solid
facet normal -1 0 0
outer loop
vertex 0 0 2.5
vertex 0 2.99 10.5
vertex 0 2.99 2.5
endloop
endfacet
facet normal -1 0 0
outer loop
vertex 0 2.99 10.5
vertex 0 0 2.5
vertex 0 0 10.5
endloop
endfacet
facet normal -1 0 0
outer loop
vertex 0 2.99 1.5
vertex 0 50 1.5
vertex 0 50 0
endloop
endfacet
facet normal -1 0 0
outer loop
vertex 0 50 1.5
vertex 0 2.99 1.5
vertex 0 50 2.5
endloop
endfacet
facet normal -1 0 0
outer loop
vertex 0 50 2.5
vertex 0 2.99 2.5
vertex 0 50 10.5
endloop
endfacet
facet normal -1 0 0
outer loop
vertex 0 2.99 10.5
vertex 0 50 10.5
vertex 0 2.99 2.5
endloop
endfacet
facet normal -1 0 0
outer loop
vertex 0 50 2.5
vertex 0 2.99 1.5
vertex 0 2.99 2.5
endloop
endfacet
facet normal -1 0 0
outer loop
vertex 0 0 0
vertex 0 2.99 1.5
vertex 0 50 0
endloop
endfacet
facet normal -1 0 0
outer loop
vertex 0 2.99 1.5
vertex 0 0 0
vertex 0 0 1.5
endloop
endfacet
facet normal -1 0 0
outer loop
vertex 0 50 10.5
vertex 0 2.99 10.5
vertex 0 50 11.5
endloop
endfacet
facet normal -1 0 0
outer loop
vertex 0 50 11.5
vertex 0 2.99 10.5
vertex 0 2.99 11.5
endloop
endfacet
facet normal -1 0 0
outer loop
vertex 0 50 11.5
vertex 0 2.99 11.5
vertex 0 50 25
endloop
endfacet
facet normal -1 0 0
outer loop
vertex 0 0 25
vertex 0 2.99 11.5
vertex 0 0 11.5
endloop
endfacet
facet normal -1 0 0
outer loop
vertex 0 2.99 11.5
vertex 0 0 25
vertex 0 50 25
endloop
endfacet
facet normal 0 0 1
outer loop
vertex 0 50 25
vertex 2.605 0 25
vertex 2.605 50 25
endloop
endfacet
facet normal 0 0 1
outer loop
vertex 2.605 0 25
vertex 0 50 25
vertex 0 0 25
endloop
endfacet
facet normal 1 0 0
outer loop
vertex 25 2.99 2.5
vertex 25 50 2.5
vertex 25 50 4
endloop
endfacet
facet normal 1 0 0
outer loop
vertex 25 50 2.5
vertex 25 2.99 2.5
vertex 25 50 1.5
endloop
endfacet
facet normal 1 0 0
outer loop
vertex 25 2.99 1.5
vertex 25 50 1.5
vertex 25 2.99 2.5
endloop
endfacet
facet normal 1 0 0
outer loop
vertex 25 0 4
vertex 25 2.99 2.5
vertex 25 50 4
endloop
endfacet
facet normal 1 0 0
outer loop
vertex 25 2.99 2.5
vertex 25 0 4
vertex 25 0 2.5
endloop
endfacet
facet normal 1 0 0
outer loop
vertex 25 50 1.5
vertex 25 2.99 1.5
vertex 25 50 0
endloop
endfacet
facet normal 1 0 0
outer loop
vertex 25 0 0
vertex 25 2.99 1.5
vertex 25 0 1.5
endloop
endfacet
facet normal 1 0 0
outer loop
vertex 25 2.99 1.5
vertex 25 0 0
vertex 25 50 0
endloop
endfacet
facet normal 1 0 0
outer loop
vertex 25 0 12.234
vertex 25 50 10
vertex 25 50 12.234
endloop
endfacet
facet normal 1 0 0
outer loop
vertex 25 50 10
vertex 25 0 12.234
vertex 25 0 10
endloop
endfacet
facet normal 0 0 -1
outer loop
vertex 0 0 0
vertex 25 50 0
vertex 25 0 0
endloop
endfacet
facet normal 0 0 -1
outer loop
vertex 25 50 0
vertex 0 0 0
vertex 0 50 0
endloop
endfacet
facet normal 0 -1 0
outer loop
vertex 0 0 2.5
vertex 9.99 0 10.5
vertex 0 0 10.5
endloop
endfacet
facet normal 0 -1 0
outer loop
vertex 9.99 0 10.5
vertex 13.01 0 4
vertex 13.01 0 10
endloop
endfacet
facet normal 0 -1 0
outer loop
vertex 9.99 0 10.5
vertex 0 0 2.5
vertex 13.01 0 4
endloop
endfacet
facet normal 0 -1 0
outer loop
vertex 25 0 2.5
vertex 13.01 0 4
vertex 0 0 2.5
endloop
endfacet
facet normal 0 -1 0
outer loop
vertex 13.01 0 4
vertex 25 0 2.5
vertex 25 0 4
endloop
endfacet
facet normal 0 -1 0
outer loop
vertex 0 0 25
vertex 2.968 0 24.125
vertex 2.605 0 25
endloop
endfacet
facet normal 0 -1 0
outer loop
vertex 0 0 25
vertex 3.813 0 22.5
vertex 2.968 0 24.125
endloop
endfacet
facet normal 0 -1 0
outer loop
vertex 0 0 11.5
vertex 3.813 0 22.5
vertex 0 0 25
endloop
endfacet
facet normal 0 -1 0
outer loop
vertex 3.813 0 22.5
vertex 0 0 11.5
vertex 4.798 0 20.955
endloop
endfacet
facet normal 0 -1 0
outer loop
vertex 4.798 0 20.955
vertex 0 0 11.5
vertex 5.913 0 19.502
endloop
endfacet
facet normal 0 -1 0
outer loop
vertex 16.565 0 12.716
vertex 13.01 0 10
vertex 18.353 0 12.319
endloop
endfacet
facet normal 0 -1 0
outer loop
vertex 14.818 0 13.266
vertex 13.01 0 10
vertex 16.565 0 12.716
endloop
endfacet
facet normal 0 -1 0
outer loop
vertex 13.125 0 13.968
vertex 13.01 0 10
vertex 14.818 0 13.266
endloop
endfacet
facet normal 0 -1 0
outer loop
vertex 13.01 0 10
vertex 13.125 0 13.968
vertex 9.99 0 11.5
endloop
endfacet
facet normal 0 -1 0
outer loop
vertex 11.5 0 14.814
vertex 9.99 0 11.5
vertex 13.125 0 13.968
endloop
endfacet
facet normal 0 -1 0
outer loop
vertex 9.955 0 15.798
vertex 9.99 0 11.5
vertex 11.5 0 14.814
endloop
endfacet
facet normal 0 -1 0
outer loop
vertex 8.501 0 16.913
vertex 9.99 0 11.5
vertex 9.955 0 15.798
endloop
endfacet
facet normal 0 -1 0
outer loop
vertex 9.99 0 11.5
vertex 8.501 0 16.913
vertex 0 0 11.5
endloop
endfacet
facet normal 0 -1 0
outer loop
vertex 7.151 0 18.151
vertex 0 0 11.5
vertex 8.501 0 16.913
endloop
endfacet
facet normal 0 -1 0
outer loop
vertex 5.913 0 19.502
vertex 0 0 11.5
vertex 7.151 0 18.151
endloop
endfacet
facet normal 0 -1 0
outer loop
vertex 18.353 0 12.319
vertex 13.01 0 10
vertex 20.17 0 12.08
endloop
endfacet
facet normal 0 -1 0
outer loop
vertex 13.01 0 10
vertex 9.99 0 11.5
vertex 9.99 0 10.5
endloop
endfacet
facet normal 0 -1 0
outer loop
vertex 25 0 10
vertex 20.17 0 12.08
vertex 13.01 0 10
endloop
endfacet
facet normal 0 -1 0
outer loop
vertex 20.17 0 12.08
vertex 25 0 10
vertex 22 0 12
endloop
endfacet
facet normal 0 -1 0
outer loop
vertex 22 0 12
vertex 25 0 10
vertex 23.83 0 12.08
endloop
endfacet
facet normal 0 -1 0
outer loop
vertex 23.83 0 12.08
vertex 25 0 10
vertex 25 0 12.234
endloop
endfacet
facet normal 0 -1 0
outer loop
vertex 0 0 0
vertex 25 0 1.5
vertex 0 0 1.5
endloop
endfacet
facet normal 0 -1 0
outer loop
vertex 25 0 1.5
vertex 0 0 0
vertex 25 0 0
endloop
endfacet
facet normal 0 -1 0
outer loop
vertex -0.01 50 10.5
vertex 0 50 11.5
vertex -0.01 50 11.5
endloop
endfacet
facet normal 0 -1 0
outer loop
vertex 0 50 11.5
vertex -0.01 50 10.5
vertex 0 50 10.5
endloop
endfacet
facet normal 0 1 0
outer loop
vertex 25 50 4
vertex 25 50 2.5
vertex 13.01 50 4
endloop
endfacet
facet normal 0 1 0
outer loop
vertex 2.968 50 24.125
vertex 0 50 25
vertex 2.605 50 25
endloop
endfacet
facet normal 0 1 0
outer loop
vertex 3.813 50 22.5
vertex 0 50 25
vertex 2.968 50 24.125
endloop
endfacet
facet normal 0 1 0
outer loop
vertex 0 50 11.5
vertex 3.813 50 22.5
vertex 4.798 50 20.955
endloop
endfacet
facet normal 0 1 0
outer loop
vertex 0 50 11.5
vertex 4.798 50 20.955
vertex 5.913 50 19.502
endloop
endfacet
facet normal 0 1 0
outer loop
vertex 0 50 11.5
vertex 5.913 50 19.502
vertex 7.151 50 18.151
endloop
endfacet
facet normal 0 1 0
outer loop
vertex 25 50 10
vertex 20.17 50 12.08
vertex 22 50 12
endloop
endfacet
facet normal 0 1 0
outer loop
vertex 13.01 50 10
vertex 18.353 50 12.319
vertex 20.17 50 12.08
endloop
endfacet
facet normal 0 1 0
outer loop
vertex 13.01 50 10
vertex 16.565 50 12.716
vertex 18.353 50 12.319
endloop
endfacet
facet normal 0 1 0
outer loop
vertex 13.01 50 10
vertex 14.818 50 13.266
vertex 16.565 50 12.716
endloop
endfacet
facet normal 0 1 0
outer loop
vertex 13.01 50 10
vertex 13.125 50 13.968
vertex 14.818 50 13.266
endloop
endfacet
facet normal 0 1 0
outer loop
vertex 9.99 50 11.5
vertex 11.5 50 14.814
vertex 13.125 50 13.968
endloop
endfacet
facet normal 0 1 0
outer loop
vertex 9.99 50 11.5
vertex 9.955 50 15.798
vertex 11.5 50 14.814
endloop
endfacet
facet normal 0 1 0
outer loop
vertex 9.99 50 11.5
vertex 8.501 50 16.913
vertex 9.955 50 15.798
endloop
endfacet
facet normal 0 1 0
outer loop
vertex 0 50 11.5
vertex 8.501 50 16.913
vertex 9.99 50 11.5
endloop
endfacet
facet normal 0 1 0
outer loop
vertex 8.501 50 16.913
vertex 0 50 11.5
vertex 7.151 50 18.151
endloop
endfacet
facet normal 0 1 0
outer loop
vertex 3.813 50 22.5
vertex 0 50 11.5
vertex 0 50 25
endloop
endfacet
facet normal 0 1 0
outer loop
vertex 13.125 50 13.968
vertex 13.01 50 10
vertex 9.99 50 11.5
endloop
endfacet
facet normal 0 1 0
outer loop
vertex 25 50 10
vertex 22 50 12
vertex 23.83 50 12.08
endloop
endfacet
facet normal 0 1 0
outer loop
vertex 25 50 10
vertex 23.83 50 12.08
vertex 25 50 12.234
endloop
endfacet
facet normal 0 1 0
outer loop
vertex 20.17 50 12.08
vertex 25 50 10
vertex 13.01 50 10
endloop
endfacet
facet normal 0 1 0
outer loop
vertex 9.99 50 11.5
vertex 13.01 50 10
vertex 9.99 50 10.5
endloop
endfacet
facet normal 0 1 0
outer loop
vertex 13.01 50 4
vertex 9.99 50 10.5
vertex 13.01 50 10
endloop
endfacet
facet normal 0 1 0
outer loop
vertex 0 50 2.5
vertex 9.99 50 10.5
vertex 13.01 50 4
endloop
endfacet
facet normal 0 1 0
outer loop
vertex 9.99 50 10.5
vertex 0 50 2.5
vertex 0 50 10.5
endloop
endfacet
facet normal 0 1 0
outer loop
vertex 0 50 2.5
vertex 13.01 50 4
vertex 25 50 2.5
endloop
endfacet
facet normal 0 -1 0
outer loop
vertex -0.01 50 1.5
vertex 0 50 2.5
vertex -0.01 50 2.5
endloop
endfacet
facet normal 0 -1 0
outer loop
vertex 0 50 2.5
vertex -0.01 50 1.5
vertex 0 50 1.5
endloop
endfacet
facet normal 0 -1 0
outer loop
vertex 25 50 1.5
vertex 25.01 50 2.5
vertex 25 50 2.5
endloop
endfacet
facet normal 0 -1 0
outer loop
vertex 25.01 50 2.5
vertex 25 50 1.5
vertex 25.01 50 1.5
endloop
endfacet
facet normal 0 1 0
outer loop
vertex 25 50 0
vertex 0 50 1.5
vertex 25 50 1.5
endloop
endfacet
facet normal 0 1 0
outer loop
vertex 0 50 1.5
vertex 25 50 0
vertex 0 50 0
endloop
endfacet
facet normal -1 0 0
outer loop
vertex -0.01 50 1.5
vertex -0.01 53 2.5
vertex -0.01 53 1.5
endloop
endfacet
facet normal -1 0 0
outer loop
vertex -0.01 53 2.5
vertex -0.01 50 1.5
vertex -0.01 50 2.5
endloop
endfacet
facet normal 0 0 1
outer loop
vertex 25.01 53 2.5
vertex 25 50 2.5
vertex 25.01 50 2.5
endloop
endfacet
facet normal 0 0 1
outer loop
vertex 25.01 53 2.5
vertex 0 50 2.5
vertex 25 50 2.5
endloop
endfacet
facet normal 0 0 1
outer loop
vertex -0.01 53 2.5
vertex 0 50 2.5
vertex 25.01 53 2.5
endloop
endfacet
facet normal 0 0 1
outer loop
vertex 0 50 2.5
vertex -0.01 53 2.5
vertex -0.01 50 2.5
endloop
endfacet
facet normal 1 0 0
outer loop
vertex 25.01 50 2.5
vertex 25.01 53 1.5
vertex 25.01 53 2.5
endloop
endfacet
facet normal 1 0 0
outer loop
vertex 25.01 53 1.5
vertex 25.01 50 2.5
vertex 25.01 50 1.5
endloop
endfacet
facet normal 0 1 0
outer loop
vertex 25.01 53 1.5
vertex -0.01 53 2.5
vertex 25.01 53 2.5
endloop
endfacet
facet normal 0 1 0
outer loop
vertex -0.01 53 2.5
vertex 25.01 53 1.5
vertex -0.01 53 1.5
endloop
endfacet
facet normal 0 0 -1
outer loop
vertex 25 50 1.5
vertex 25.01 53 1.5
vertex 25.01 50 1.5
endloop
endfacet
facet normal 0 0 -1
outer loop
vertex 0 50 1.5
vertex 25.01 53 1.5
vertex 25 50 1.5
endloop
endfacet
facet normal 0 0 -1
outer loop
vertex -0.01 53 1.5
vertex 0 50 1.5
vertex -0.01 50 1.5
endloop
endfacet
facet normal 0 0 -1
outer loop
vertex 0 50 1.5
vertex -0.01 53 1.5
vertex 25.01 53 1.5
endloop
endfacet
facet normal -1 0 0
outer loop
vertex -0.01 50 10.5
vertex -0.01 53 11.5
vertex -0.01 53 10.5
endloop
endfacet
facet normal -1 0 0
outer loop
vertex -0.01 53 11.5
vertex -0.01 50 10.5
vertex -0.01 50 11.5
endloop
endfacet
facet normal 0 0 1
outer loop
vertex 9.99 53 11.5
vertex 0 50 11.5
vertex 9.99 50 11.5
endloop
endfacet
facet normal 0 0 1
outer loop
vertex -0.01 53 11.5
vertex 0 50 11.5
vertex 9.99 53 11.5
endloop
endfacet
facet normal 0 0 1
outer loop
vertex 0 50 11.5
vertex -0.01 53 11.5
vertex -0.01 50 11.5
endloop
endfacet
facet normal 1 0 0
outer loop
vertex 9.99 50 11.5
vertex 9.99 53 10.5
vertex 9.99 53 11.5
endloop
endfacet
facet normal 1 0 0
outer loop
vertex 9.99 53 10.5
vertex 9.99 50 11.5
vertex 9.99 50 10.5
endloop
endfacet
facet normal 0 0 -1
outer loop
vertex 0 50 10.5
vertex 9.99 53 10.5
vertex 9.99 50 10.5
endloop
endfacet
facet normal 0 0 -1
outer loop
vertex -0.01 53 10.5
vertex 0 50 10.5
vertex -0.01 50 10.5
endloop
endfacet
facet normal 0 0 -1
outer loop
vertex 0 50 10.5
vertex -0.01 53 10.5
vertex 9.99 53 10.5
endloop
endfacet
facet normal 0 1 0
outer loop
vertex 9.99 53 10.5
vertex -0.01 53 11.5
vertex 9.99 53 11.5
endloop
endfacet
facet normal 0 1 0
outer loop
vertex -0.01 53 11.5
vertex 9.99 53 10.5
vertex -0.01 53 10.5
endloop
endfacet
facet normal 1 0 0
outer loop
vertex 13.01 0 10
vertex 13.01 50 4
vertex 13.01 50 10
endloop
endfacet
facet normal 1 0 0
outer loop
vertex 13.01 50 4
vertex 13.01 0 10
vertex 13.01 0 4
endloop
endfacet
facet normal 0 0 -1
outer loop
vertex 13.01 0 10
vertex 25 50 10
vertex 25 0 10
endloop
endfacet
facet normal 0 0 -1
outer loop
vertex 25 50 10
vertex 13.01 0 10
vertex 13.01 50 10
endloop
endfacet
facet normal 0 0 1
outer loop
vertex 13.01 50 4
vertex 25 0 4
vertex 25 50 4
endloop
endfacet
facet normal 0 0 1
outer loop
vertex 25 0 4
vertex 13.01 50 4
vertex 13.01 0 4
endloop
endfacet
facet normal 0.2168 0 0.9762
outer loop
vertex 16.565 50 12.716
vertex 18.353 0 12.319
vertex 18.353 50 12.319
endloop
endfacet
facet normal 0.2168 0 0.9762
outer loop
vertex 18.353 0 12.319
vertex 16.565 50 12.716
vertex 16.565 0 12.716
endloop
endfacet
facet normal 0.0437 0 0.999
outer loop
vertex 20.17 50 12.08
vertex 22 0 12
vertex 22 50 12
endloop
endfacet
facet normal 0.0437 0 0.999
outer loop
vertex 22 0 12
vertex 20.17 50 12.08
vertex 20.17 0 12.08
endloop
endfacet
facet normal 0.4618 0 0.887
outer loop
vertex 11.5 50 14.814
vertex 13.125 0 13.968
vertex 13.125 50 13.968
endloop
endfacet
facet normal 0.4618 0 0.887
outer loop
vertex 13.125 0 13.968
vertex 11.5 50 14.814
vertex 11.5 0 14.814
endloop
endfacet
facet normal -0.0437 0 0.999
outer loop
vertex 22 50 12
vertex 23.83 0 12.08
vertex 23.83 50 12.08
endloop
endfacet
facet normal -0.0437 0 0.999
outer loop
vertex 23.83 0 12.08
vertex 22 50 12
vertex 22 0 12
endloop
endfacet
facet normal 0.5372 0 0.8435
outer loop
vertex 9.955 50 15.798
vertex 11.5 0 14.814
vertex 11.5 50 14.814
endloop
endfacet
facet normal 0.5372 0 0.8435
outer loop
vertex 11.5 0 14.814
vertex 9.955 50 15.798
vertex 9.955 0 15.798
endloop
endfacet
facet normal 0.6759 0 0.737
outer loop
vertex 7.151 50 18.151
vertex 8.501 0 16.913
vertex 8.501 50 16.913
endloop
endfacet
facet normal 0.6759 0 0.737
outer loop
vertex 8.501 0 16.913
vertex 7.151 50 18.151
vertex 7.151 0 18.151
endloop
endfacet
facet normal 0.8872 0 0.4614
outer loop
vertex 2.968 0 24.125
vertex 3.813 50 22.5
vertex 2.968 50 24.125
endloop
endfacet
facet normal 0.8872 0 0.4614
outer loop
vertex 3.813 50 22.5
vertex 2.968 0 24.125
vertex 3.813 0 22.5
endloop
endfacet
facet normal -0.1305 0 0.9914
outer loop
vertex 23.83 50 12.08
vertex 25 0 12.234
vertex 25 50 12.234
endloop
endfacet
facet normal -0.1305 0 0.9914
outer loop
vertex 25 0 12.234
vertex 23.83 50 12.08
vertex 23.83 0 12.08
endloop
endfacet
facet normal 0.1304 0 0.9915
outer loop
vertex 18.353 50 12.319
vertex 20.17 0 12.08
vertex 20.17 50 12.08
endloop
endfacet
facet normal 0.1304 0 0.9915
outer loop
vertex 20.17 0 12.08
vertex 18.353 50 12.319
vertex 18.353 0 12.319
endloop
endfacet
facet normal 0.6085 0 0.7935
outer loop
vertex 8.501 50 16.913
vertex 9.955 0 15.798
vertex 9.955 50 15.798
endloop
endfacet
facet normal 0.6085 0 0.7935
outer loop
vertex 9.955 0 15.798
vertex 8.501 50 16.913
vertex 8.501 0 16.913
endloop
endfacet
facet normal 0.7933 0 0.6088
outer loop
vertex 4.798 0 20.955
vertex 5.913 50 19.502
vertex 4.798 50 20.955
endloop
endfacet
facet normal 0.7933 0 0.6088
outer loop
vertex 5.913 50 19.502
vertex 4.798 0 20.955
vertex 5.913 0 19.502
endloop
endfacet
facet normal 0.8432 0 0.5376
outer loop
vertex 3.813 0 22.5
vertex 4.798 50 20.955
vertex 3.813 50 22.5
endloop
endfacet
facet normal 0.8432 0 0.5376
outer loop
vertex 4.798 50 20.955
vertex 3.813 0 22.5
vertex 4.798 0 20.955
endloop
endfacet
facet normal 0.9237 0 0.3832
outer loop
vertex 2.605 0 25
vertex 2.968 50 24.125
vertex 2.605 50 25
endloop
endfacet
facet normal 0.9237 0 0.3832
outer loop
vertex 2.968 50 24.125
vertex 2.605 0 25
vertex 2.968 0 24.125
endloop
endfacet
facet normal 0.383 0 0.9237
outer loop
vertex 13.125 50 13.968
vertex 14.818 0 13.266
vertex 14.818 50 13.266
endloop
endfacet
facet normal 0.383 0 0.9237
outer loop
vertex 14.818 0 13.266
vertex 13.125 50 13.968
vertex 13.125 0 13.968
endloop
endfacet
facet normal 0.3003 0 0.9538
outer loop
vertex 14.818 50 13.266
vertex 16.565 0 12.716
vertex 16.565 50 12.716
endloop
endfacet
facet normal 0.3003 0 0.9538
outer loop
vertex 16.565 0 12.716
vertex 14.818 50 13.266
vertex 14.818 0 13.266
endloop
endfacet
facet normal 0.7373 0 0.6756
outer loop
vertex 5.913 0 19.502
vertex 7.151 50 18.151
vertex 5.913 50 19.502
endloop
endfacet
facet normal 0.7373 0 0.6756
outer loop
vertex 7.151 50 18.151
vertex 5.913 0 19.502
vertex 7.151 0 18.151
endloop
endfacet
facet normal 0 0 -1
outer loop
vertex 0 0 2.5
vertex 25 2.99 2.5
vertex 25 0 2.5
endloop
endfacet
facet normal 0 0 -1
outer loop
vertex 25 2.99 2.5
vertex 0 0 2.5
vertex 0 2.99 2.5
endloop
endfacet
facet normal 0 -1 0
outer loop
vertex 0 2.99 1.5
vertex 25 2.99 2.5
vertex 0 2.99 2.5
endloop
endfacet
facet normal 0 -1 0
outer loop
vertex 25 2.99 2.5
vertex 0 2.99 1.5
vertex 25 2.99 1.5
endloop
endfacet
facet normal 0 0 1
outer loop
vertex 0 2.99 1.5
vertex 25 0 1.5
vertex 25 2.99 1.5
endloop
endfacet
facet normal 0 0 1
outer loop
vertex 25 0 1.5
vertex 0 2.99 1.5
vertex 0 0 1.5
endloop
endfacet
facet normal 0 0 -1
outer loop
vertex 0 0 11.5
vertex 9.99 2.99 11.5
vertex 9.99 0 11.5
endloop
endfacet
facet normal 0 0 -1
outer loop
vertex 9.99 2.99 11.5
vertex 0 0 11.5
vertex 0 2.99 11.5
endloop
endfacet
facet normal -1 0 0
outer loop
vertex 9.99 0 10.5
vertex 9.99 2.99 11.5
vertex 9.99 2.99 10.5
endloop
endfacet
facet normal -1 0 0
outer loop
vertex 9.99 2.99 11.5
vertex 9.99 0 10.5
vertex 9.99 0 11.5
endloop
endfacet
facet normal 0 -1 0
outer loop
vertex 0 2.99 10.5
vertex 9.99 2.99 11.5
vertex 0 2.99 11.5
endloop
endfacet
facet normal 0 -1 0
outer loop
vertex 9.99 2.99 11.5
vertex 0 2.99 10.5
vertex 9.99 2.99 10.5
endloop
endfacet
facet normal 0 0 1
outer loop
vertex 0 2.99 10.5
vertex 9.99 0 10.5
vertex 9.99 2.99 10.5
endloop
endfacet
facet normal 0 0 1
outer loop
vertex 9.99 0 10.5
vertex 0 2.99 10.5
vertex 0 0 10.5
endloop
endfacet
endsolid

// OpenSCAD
$fa=5; $fs=0.1;

difference(){
    
    union(){
        cube([25,50,25]); //из чего вырезается
        
        translate([-0.01, 50, 1.5]) cube([25.02,3,1]); // выступы под стык
        translate([-0.01, 50, 10.5]) cube([10,3,1]);
        
    }
    
    union(){
        
        translate([13.01, -0.01, 4]) cube([12.01,50.02,6]); //под лист ПВХ 6мм
        translate([22,50.01,33]) rotate([90,0,0]) cylinder(h=50.02, r=21); //скос
        
        translate([-0.01, -0.01, 1.5]) cube([25.02,3,1]); // вырезы под стык
        translate([-0.01, -0.01, 10.5]) cube([10,3,1]);
    }
}
